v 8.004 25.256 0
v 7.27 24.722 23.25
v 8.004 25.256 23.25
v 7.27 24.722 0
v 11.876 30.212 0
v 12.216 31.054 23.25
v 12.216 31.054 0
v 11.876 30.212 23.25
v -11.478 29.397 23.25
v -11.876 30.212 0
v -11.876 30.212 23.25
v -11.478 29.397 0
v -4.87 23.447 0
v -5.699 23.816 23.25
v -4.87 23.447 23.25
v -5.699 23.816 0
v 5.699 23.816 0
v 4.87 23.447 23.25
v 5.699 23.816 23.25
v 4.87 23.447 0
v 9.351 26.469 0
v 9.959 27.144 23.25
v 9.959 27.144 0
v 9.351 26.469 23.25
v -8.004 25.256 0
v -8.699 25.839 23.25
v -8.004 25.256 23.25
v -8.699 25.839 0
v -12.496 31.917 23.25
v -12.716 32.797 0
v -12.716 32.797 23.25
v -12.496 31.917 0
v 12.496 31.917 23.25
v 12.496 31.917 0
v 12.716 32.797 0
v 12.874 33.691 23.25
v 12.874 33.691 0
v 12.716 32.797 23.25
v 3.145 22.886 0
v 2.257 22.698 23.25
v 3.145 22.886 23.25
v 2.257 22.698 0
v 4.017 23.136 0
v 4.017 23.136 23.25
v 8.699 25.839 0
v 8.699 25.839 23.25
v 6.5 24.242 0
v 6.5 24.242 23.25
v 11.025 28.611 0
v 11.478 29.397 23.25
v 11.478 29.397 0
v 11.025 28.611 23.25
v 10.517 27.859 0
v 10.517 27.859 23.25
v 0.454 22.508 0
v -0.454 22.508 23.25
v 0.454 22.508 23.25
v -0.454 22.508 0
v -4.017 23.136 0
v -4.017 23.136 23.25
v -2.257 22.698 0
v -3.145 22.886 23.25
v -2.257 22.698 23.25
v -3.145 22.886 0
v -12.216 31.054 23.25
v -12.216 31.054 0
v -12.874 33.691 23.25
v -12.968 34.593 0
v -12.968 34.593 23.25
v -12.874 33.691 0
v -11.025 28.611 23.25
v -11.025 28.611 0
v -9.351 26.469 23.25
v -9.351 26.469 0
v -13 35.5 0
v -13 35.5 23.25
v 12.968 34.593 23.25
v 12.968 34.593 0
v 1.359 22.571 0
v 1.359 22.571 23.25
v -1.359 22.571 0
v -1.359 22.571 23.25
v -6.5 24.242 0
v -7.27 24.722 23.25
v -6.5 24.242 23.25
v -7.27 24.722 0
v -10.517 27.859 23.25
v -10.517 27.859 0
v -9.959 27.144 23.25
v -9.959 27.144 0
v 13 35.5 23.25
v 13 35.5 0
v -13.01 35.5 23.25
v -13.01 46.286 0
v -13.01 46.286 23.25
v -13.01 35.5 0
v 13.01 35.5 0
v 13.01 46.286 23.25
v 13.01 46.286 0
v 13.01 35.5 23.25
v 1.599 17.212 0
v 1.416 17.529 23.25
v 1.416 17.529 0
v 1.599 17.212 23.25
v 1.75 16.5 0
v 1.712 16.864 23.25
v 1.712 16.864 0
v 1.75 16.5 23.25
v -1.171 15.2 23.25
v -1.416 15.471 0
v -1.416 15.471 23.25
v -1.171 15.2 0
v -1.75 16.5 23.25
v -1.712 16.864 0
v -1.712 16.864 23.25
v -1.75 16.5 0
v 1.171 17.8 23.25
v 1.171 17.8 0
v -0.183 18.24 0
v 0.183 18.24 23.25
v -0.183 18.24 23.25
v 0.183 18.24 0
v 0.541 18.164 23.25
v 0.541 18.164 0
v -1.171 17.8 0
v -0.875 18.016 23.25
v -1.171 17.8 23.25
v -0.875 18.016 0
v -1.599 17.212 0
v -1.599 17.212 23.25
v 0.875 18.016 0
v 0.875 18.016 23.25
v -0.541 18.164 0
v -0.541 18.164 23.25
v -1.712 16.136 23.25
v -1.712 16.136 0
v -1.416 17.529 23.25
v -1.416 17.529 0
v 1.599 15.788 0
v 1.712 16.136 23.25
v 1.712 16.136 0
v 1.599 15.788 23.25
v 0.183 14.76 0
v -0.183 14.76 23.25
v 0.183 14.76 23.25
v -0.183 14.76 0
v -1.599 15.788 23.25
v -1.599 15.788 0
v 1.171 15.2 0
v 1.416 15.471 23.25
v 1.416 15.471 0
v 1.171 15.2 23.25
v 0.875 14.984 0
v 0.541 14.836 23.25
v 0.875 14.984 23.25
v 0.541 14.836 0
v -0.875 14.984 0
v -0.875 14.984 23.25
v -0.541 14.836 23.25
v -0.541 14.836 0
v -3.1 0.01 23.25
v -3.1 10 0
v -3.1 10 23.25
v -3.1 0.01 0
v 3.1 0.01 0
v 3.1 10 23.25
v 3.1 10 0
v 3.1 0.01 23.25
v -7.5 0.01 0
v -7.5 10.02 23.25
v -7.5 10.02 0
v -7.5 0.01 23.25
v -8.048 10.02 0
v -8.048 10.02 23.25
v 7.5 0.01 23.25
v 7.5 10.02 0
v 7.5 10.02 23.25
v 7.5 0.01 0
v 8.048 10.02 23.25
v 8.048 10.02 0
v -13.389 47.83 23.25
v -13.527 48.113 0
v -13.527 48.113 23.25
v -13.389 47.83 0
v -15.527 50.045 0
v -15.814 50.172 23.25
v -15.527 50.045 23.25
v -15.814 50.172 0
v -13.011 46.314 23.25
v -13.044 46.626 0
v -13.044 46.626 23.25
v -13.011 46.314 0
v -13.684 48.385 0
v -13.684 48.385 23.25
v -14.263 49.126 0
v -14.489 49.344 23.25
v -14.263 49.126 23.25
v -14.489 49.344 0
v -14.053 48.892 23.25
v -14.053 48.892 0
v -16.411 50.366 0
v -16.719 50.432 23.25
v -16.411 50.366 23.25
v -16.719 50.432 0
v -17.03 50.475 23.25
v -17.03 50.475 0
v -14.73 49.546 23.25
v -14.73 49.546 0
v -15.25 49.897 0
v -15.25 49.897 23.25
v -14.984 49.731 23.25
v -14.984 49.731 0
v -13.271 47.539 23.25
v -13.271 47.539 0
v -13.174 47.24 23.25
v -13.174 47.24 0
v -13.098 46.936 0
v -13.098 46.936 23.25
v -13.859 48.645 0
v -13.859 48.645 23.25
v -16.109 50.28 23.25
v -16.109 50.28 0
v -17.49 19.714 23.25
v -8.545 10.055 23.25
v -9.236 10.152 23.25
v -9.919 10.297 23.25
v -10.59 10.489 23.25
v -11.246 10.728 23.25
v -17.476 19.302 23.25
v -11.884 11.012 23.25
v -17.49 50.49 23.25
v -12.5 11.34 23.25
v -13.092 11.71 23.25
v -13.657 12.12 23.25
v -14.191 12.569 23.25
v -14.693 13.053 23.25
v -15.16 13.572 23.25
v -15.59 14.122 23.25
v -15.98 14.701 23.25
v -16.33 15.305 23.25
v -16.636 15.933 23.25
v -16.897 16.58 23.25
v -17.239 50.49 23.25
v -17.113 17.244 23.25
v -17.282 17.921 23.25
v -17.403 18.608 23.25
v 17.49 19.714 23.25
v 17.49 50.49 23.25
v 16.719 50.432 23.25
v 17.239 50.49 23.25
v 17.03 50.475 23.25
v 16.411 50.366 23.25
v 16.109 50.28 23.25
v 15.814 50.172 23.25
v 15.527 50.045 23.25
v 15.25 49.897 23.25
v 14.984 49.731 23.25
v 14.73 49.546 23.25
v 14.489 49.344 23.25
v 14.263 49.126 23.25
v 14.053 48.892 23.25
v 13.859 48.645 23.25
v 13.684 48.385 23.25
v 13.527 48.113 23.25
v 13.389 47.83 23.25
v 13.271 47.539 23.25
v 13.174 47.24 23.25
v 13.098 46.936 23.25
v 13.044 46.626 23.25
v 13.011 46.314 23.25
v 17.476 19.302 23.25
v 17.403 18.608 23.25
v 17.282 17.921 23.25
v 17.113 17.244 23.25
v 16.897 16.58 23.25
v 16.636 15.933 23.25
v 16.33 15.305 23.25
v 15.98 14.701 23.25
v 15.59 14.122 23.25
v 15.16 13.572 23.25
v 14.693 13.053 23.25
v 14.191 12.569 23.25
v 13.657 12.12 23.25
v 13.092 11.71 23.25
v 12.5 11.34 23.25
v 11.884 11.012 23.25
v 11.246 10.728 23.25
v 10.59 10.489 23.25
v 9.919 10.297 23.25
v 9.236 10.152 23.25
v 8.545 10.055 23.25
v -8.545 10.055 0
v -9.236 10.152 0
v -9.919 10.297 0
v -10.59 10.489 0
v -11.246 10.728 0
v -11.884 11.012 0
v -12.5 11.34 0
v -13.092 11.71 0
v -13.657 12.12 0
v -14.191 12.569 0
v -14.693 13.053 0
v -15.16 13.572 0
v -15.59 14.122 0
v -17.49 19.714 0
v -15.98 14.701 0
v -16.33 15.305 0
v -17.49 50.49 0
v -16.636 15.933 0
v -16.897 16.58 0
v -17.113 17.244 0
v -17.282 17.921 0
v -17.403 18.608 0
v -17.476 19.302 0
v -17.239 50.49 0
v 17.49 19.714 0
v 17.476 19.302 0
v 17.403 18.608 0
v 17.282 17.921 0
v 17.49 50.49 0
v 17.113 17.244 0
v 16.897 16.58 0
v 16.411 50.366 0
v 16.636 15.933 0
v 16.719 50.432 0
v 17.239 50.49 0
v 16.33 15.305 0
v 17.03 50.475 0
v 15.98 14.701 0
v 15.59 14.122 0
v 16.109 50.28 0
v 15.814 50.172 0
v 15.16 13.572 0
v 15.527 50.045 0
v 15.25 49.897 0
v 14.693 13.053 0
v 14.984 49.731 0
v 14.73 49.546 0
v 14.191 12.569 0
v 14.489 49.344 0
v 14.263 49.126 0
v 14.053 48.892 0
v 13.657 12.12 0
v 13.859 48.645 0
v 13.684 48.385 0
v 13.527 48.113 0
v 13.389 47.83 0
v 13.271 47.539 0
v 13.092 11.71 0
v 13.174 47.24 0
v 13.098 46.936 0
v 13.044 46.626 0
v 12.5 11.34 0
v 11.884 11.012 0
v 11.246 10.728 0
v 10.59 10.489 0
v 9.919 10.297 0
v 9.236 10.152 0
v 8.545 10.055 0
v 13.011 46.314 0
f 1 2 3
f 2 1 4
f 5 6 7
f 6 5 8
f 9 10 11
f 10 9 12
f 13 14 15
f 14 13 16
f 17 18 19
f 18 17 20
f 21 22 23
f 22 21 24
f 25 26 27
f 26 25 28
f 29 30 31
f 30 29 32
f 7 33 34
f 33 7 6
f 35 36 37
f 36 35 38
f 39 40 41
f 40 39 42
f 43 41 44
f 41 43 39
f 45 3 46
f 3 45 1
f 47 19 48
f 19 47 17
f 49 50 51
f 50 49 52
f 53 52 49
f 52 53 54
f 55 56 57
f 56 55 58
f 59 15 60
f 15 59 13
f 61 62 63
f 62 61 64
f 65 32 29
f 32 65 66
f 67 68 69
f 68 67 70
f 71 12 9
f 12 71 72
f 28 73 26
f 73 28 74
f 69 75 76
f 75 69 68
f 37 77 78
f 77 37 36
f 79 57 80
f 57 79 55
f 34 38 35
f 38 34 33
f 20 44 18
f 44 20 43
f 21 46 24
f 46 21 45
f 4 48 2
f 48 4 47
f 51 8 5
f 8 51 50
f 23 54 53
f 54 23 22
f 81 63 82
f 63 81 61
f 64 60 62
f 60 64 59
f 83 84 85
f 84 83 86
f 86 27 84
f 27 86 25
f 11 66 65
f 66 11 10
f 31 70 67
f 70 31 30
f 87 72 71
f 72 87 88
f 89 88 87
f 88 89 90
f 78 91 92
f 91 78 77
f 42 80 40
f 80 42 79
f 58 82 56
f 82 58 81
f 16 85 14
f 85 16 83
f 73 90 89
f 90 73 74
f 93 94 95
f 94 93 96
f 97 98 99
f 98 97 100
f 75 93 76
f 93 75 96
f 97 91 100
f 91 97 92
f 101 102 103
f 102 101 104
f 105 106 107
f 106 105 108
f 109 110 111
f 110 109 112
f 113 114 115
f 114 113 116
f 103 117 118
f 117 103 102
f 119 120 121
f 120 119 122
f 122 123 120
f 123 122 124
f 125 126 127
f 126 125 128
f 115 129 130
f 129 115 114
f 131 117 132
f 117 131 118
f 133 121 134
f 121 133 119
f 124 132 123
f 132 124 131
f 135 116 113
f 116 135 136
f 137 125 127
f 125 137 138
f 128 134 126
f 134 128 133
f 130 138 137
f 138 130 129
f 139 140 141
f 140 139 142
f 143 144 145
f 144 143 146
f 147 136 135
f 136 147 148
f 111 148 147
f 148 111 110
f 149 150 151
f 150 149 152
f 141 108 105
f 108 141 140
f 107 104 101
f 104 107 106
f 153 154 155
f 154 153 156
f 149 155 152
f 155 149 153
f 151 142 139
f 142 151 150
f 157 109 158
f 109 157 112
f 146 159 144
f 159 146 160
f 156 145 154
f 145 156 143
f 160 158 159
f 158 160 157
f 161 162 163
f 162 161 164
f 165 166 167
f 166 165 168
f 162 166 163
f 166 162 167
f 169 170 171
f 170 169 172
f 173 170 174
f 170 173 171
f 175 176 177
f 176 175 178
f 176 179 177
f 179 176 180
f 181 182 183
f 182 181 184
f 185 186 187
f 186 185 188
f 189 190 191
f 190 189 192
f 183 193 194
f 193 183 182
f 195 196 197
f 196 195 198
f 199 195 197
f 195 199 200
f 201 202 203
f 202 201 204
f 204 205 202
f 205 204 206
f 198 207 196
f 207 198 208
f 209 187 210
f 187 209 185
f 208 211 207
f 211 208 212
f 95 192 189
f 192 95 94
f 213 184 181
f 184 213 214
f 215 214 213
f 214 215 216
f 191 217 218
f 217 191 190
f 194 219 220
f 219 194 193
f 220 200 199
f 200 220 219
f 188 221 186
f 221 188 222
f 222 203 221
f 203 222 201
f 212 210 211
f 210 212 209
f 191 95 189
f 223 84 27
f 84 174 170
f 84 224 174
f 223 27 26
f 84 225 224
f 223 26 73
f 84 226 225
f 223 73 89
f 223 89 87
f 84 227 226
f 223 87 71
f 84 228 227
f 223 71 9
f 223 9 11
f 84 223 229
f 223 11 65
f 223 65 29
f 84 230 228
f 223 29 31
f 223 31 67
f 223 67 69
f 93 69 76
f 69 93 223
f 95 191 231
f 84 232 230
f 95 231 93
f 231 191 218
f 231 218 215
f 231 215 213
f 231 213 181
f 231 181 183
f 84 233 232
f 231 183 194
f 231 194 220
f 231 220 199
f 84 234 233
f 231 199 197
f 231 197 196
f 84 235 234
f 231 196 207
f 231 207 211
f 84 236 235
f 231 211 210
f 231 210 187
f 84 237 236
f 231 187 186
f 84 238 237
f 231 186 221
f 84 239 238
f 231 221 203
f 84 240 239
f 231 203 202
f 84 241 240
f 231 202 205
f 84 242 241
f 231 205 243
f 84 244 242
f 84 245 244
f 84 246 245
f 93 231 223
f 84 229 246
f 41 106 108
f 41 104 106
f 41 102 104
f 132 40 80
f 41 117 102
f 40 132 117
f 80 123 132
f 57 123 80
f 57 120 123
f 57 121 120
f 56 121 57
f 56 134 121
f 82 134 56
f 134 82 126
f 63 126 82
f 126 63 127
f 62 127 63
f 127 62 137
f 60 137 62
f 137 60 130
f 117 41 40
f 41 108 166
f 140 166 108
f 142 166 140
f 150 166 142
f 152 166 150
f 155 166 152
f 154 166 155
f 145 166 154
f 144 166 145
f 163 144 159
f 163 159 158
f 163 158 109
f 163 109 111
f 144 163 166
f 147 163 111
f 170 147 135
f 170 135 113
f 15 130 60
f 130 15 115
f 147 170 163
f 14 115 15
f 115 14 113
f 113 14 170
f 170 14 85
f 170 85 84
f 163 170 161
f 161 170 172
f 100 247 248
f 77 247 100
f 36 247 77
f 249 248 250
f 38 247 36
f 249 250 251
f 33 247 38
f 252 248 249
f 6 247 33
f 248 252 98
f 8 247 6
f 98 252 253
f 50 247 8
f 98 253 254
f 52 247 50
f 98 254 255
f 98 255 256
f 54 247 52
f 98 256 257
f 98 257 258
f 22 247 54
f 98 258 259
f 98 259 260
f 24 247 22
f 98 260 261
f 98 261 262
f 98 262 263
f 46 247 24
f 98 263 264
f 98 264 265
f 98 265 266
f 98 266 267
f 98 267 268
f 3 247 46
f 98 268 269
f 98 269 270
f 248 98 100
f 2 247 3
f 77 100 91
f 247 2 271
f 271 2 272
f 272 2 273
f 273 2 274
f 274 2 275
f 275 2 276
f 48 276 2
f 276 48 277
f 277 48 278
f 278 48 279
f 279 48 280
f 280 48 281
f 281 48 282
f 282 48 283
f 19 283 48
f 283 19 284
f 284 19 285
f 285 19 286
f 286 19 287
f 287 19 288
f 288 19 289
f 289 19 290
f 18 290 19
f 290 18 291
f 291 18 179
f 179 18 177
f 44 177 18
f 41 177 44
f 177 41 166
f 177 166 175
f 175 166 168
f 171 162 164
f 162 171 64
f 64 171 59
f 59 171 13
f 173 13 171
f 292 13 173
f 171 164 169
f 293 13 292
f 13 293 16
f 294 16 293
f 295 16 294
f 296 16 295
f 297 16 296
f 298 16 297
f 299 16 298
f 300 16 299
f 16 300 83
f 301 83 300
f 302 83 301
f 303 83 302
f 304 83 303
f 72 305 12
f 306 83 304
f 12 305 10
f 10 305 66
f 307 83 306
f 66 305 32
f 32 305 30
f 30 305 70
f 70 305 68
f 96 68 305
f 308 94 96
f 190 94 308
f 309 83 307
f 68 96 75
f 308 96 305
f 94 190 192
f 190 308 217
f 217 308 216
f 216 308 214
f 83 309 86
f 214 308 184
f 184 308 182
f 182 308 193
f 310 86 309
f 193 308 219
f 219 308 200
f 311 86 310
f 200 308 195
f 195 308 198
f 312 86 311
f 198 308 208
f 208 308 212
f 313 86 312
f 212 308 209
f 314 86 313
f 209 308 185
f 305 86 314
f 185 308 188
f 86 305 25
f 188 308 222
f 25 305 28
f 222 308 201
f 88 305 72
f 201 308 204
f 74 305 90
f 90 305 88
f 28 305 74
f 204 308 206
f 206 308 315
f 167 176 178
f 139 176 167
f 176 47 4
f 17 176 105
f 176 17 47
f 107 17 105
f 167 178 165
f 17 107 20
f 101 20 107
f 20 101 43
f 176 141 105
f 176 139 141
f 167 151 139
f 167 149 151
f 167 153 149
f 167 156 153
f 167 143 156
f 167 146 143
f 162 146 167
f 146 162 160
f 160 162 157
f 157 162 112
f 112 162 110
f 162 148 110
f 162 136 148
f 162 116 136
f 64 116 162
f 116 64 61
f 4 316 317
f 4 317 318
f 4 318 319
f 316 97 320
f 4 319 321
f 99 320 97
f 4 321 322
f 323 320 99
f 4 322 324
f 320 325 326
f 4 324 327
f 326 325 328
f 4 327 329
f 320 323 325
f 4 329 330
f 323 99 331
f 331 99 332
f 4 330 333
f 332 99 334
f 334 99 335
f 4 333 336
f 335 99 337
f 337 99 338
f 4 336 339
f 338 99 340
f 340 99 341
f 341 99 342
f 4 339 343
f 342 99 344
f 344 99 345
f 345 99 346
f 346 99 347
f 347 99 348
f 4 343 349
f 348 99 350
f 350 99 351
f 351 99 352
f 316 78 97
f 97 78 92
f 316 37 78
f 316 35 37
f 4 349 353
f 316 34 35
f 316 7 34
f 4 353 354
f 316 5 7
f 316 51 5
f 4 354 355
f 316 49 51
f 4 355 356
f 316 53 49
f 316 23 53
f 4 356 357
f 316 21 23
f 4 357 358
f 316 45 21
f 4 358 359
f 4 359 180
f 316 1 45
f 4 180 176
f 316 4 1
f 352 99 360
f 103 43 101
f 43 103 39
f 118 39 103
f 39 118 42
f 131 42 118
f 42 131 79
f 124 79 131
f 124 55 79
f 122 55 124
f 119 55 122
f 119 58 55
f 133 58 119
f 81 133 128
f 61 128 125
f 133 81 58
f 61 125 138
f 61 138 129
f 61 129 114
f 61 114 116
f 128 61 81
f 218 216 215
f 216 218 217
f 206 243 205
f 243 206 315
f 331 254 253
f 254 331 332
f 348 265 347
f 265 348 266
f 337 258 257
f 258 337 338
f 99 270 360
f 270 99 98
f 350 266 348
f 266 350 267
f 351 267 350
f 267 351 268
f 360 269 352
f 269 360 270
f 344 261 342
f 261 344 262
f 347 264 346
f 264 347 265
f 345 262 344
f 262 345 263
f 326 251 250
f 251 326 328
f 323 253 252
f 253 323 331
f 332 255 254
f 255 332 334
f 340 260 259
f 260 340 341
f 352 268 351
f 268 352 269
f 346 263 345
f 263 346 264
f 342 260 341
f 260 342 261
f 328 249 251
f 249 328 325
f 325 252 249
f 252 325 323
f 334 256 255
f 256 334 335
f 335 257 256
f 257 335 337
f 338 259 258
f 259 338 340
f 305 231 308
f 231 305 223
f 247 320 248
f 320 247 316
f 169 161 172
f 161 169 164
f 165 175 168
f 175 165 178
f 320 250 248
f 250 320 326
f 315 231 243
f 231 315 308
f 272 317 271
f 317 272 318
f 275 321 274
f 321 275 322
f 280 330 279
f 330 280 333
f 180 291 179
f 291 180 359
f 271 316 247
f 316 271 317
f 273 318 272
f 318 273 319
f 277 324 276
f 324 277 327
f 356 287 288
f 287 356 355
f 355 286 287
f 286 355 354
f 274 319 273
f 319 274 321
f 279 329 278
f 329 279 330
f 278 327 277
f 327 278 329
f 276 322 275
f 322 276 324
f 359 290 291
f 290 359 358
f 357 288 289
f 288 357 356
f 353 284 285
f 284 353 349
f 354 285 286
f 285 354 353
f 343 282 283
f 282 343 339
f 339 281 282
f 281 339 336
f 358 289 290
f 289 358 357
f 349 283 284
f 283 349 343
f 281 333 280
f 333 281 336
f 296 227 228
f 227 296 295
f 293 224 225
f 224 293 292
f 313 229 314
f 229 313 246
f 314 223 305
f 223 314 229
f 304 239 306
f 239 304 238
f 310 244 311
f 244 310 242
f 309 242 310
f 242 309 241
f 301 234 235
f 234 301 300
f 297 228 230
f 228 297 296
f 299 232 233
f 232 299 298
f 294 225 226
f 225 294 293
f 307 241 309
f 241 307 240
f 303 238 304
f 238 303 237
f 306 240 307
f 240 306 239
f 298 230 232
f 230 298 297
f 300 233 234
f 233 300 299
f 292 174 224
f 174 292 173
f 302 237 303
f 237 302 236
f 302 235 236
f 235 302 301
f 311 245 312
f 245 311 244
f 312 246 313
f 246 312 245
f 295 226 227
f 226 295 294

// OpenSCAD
// Project: BigBox v2
// Part:    heatedbed_drive_support (x2)
// Author:  Grigori Palamartšuk <grigori.palamarchuk@gmail.com>
// Source:  http://bigbox.lecktor.ee

$e  = 0.01;
$h  = 23.25;
$pl = 6.2;

module body()
{
    difference()
    {
        difference()
        {
            translate([$e,$e,0]) cube([35-2*$e,50.50-2*$e,23.25]);
            union()
            {
                translate([0,50.50-4.5,0]) cylEdge(4.5,1);
                translate([35,50.50-4.5,0]) cylEdge(4.5,2);
            }
        }
        union()
        {
            translate([25,20,0]) cylEdge(10,3);
            translate([10,20,0]) cylEdge(10,4);
        }
    }
}

module holes()
{
    // central hole
    translate([17.5,35.5,-$e]) cylinder(h=$h+2*$e,r=13,$fn=90);
    translate([4.5-$e,35.5,-$e]) cube([26+2*$e,15+$e,$h+2*$e]);
    
    // m3 screw hole
    translate([17.5,16.5,-$e]) cylinder(h=$h+2*$e,r=1.75,$fn=30);
    
    // plywood holder hole
    translate([(35-$pl)/2,0,-$e]) cube([$pl,10,$h+2*$e]);
    
    // corner cutouts
    translate([0,0,-$e]) cube([10,10+2*$e,$h+2*$e]);
    translate([25,0,-$e]) cube([10,10+2*$e,$h+2*$e]);
}


module cylEdge(rr=2.25,pos=1)
{
    difference()
    {

        difference()
        {
            translate([-rr,-rr,-$e]) cube([2*rr,2*rr,$h+2*$e]);
            cylinder(h=$h,r=rr,$fn=90);
        }
        union()
        {
            if (pos == 1) // top_right
            {
                translate([-rr,0,0]) cube([rr,rr,$h]);
                translate([-rr,-rr,0]) cube([rr,rr,$h]);
                translate([0,-rr,0]) cube([rr,rr,$h]);
            } else if (pos == 2) { // top_left
                translate([0,0,0]) cube([rr,rr,$h]);
                translate([-rr,-rr,0]) cube([rr,rr,$h]);
                translate([0,-rr,0]) cube([rr,rr,$h]);
            } else if (pos == 3) { // bottom_right
                translate([0,0,0]) cube([rr,rr,$h]);
                translate([-rr,0,0]) cube([rr,rr,$h]);
                translate([-rr,-rr,0]) cube([rr,rr,$h]);                
            } else if (pos == 4) { // bottom_left
                translate([0,0,0]) cube([rr,rr,$h]);
                translate([-rr,0,0]) cube([rr,rr,$h]);
                translate([0,-rr,0]) cube([rr,rr,$h]);
            } else {
                // nothing
            }
        }
    }
}

translate([-17.5,0,0])
difference()
{
    body();
    holes();
}
